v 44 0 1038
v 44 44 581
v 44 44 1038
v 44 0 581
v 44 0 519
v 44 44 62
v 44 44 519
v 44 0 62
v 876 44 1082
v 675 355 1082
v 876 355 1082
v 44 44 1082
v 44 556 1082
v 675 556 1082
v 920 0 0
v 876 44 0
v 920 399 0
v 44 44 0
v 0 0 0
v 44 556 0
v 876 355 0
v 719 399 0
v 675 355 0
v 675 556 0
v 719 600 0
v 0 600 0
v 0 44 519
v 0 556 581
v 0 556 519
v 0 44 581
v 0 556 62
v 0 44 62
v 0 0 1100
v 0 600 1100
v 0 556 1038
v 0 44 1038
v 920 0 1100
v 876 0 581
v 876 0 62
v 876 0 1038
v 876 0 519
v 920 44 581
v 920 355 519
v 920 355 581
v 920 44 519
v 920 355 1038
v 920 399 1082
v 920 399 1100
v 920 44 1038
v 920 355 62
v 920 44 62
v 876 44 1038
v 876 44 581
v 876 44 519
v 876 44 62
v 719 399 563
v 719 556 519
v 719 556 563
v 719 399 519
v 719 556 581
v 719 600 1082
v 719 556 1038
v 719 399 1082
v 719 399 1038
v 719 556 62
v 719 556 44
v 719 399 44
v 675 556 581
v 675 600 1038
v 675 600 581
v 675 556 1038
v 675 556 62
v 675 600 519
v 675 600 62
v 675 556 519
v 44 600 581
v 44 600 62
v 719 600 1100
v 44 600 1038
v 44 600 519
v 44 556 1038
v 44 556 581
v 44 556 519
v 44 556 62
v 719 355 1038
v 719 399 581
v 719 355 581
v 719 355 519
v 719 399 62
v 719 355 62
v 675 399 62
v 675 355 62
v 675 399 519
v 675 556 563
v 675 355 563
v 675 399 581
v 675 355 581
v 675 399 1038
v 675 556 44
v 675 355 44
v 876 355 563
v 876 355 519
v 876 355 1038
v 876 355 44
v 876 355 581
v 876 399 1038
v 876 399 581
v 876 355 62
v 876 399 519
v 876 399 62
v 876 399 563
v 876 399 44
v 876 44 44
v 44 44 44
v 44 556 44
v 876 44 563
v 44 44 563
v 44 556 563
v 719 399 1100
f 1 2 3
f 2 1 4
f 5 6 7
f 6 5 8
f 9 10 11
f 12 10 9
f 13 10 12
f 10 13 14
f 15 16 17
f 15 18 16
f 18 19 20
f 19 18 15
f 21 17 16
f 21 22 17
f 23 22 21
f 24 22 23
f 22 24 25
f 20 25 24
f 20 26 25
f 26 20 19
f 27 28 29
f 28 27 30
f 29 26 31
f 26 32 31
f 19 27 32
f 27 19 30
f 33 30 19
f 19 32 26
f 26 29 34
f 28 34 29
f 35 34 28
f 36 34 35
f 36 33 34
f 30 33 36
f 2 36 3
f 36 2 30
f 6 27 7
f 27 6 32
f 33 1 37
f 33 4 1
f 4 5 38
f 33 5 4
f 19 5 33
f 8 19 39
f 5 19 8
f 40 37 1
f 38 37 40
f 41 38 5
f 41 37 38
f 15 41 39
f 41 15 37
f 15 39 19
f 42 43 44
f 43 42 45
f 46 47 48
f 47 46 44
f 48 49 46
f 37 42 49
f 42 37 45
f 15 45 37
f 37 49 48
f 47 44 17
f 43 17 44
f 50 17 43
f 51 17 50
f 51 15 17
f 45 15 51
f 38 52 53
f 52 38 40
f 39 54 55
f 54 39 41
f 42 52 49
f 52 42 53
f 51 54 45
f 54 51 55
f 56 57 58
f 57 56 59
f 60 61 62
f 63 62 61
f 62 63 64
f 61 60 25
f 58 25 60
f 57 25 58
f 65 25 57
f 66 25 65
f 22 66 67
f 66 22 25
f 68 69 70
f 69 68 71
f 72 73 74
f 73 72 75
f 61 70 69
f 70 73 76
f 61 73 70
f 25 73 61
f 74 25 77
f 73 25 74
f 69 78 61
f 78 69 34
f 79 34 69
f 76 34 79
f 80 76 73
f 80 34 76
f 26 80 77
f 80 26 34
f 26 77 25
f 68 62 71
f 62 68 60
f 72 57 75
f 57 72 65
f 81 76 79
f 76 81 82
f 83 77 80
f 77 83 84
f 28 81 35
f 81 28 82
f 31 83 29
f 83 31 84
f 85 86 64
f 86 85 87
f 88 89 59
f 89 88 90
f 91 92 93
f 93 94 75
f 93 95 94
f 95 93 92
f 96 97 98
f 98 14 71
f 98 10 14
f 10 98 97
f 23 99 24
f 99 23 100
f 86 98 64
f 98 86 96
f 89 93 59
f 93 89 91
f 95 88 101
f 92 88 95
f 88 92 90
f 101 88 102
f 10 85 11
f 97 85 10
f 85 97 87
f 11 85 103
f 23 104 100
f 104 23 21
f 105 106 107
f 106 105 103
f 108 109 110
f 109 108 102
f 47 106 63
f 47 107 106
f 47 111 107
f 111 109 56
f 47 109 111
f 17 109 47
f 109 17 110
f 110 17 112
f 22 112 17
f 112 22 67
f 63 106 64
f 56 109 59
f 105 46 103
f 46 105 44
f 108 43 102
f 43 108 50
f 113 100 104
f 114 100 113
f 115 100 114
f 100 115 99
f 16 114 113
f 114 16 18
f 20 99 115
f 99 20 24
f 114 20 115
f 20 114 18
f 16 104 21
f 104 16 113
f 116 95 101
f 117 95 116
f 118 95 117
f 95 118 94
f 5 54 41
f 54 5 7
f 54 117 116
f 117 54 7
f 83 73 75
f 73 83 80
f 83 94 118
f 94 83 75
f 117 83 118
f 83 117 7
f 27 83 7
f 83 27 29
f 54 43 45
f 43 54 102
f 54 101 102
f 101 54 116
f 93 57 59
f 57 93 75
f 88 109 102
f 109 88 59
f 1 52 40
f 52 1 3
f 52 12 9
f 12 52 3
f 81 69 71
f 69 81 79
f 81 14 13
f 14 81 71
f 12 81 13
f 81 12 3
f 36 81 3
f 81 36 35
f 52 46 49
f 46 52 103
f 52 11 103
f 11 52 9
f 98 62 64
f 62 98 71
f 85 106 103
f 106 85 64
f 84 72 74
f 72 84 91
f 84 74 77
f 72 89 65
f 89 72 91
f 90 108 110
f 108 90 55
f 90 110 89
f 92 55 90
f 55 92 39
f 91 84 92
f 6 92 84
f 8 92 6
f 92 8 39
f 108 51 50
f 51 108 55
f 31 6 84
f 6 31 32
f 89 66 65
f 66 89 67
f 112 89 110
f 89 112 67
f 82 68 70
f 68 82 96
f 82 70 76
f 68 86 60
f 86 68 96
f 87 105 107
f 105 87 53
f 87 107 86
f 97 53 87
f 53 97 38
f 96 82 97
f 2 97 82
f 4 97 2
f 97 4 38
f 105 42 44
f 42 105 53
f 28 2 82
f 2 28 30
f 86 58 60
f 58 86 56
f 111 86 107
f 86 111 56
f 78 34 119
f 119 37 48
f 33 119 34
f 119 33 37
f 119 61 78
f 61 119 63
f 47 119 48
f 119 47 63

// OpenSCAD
pane_thickness = 18;
pane_width = 300;
pane_length = 920;
total_height = 1100;

leg_thickness = 44;
leg_height = total_height - pane_thickness;

front_width = 920;
back_width = 675;
chimney_width = 245;
/* sides_width = 650; */
sides_width = 600;

chimney_support_length = (chimney_width-(2*leg_thickness));
back_support_length = (back_width-(1*leg_thickness));
front_support_length = (front_width-(2*leg_thickness));


module leg() {
  color("red")
    cube([leg_thickness, leg_thickness, leg_height]);  
}

module legs() {
  // front left leg
  leg();
  // front right leg
  translate([front_width-leg_thickness, 0])
    leg();
  // bottom right leg
  translate([front_width-leg_thickness-chimney_support_length-leg_thickness, sides_width-leg_thickness])
    leg();
  // bottom left leg
  translate([0, sides_width-leg_thickness])
    leg();
  // chimney leg
  translate([front_width-leg_thickness-chimney_support_length-leg_thickness, sides_width-chimney_width])
    leg();
  // chimney side leg
  translate([front_width-leg_thickness, sides_width-chimney_width])
    leg();
}

module front_support() {
  translate([leg_thickness, 0, 0])
    cube([front_support_length, leg_thickness, leg_thickness]);
}

module back_support() {
  translate([leg_thickness,sides_width-leg_thickness])
    cube([back_support_length, leg_thickness, leg_thickness]);
}

module left_side_support() {
  translate([0, leg_thickness, 0])
    cube([leg_thickness, (sides_width-(2*leg_thickness)), leg_thickness]);
}

module right_side_support() {
  translate([front_width-leg_thickness, 0])
    translate([0, leg_thickness, 0])
      cube([leg_thickness, (sides_width-(leg_thickness)-chimney_width), leg_thickness]);
}

module chimney_right_support() {
  translate([front_width-leg_thickness-chimney_support_length-leg_thickness, sides_width-chimney_width+leg_thickness])
    cube([leg_thickness, chimney_support_length, leg_thickness]);
}

module chimney_front_support() {
  translate([front_width-chimney_support_length-leg_thickness, sides_width-chimney_width])
    cube([chimney_support_length, leg_thickness, leg_thickness]);
}

module supports() {
  front_support();
  back_support();
  left_side_support();
  right_side_support();
  chimney_right_support();
  chimney_front_support();
}

module pane() {
  color("orange")
    cube([pane_length, pane_width, pane_thickness]);
}

module top_pane() {
  pane();
  translate([0, pane_width, 0])
    difference(){
      color("blue")
      pane();
      translate([pane_length-chimney_width+leg_thickness, pane_width-chimney_width+leg_thickness, -pane_thickness/2])
        // overcut by 50 to avoid rendering issue
        cube([chimney_width-leg_thickness+50, chimney_width-leg_thickness+50, pane_thickness*2]);
    }
}

module leg_cut() {
  // overcut by 50 to avoid rendering issue
  cube([leg_thickness, leg_thickness, pane_thickness*2]);
}

module pane_leg_cuts() {
  color("black")
    leg_cut();
  translate([front_width-leg_thickness, 0])
    leg_cut();
  // bottom right leg
  translate([front_width-leg_thickness-chimney_support_length-leg_thickness, sides_width-leg_thickness])
    leg_cut();
  // bottom left leg
  translate([0, sides_width-leg_thickness])
    leg_cut();
  // chimney leg
  translate([front_width-leg_thickness-chimney_support_length-leg_thickness, sides_width-chimney_width])
    leg_cut();
  // chimney side leg
  translate([front_width-leg_thickness, sides_width-chimney_width])
    leg_cut();
}

legs();
// ground support
supports();
// middle support
translate([0, 0, (leg_height-leg_thickness)/2])
  supports();
// top support
translate([0, 0, leg_height-leg_thickness])
  supports();

// ground pane
translate([0, 0, leg_thickness])
  difference(){
    top_pane();
    pane_leg_cuts();
  }

// middle pane
translate([0, 0, (leg_height/2)+(leg_thickness/2)])
  difference(){
    top_pane();
    pane_leg_cuts();
  }
// top pane
translate([0, 0, total_height-pane_thickness])
  top_pane();
